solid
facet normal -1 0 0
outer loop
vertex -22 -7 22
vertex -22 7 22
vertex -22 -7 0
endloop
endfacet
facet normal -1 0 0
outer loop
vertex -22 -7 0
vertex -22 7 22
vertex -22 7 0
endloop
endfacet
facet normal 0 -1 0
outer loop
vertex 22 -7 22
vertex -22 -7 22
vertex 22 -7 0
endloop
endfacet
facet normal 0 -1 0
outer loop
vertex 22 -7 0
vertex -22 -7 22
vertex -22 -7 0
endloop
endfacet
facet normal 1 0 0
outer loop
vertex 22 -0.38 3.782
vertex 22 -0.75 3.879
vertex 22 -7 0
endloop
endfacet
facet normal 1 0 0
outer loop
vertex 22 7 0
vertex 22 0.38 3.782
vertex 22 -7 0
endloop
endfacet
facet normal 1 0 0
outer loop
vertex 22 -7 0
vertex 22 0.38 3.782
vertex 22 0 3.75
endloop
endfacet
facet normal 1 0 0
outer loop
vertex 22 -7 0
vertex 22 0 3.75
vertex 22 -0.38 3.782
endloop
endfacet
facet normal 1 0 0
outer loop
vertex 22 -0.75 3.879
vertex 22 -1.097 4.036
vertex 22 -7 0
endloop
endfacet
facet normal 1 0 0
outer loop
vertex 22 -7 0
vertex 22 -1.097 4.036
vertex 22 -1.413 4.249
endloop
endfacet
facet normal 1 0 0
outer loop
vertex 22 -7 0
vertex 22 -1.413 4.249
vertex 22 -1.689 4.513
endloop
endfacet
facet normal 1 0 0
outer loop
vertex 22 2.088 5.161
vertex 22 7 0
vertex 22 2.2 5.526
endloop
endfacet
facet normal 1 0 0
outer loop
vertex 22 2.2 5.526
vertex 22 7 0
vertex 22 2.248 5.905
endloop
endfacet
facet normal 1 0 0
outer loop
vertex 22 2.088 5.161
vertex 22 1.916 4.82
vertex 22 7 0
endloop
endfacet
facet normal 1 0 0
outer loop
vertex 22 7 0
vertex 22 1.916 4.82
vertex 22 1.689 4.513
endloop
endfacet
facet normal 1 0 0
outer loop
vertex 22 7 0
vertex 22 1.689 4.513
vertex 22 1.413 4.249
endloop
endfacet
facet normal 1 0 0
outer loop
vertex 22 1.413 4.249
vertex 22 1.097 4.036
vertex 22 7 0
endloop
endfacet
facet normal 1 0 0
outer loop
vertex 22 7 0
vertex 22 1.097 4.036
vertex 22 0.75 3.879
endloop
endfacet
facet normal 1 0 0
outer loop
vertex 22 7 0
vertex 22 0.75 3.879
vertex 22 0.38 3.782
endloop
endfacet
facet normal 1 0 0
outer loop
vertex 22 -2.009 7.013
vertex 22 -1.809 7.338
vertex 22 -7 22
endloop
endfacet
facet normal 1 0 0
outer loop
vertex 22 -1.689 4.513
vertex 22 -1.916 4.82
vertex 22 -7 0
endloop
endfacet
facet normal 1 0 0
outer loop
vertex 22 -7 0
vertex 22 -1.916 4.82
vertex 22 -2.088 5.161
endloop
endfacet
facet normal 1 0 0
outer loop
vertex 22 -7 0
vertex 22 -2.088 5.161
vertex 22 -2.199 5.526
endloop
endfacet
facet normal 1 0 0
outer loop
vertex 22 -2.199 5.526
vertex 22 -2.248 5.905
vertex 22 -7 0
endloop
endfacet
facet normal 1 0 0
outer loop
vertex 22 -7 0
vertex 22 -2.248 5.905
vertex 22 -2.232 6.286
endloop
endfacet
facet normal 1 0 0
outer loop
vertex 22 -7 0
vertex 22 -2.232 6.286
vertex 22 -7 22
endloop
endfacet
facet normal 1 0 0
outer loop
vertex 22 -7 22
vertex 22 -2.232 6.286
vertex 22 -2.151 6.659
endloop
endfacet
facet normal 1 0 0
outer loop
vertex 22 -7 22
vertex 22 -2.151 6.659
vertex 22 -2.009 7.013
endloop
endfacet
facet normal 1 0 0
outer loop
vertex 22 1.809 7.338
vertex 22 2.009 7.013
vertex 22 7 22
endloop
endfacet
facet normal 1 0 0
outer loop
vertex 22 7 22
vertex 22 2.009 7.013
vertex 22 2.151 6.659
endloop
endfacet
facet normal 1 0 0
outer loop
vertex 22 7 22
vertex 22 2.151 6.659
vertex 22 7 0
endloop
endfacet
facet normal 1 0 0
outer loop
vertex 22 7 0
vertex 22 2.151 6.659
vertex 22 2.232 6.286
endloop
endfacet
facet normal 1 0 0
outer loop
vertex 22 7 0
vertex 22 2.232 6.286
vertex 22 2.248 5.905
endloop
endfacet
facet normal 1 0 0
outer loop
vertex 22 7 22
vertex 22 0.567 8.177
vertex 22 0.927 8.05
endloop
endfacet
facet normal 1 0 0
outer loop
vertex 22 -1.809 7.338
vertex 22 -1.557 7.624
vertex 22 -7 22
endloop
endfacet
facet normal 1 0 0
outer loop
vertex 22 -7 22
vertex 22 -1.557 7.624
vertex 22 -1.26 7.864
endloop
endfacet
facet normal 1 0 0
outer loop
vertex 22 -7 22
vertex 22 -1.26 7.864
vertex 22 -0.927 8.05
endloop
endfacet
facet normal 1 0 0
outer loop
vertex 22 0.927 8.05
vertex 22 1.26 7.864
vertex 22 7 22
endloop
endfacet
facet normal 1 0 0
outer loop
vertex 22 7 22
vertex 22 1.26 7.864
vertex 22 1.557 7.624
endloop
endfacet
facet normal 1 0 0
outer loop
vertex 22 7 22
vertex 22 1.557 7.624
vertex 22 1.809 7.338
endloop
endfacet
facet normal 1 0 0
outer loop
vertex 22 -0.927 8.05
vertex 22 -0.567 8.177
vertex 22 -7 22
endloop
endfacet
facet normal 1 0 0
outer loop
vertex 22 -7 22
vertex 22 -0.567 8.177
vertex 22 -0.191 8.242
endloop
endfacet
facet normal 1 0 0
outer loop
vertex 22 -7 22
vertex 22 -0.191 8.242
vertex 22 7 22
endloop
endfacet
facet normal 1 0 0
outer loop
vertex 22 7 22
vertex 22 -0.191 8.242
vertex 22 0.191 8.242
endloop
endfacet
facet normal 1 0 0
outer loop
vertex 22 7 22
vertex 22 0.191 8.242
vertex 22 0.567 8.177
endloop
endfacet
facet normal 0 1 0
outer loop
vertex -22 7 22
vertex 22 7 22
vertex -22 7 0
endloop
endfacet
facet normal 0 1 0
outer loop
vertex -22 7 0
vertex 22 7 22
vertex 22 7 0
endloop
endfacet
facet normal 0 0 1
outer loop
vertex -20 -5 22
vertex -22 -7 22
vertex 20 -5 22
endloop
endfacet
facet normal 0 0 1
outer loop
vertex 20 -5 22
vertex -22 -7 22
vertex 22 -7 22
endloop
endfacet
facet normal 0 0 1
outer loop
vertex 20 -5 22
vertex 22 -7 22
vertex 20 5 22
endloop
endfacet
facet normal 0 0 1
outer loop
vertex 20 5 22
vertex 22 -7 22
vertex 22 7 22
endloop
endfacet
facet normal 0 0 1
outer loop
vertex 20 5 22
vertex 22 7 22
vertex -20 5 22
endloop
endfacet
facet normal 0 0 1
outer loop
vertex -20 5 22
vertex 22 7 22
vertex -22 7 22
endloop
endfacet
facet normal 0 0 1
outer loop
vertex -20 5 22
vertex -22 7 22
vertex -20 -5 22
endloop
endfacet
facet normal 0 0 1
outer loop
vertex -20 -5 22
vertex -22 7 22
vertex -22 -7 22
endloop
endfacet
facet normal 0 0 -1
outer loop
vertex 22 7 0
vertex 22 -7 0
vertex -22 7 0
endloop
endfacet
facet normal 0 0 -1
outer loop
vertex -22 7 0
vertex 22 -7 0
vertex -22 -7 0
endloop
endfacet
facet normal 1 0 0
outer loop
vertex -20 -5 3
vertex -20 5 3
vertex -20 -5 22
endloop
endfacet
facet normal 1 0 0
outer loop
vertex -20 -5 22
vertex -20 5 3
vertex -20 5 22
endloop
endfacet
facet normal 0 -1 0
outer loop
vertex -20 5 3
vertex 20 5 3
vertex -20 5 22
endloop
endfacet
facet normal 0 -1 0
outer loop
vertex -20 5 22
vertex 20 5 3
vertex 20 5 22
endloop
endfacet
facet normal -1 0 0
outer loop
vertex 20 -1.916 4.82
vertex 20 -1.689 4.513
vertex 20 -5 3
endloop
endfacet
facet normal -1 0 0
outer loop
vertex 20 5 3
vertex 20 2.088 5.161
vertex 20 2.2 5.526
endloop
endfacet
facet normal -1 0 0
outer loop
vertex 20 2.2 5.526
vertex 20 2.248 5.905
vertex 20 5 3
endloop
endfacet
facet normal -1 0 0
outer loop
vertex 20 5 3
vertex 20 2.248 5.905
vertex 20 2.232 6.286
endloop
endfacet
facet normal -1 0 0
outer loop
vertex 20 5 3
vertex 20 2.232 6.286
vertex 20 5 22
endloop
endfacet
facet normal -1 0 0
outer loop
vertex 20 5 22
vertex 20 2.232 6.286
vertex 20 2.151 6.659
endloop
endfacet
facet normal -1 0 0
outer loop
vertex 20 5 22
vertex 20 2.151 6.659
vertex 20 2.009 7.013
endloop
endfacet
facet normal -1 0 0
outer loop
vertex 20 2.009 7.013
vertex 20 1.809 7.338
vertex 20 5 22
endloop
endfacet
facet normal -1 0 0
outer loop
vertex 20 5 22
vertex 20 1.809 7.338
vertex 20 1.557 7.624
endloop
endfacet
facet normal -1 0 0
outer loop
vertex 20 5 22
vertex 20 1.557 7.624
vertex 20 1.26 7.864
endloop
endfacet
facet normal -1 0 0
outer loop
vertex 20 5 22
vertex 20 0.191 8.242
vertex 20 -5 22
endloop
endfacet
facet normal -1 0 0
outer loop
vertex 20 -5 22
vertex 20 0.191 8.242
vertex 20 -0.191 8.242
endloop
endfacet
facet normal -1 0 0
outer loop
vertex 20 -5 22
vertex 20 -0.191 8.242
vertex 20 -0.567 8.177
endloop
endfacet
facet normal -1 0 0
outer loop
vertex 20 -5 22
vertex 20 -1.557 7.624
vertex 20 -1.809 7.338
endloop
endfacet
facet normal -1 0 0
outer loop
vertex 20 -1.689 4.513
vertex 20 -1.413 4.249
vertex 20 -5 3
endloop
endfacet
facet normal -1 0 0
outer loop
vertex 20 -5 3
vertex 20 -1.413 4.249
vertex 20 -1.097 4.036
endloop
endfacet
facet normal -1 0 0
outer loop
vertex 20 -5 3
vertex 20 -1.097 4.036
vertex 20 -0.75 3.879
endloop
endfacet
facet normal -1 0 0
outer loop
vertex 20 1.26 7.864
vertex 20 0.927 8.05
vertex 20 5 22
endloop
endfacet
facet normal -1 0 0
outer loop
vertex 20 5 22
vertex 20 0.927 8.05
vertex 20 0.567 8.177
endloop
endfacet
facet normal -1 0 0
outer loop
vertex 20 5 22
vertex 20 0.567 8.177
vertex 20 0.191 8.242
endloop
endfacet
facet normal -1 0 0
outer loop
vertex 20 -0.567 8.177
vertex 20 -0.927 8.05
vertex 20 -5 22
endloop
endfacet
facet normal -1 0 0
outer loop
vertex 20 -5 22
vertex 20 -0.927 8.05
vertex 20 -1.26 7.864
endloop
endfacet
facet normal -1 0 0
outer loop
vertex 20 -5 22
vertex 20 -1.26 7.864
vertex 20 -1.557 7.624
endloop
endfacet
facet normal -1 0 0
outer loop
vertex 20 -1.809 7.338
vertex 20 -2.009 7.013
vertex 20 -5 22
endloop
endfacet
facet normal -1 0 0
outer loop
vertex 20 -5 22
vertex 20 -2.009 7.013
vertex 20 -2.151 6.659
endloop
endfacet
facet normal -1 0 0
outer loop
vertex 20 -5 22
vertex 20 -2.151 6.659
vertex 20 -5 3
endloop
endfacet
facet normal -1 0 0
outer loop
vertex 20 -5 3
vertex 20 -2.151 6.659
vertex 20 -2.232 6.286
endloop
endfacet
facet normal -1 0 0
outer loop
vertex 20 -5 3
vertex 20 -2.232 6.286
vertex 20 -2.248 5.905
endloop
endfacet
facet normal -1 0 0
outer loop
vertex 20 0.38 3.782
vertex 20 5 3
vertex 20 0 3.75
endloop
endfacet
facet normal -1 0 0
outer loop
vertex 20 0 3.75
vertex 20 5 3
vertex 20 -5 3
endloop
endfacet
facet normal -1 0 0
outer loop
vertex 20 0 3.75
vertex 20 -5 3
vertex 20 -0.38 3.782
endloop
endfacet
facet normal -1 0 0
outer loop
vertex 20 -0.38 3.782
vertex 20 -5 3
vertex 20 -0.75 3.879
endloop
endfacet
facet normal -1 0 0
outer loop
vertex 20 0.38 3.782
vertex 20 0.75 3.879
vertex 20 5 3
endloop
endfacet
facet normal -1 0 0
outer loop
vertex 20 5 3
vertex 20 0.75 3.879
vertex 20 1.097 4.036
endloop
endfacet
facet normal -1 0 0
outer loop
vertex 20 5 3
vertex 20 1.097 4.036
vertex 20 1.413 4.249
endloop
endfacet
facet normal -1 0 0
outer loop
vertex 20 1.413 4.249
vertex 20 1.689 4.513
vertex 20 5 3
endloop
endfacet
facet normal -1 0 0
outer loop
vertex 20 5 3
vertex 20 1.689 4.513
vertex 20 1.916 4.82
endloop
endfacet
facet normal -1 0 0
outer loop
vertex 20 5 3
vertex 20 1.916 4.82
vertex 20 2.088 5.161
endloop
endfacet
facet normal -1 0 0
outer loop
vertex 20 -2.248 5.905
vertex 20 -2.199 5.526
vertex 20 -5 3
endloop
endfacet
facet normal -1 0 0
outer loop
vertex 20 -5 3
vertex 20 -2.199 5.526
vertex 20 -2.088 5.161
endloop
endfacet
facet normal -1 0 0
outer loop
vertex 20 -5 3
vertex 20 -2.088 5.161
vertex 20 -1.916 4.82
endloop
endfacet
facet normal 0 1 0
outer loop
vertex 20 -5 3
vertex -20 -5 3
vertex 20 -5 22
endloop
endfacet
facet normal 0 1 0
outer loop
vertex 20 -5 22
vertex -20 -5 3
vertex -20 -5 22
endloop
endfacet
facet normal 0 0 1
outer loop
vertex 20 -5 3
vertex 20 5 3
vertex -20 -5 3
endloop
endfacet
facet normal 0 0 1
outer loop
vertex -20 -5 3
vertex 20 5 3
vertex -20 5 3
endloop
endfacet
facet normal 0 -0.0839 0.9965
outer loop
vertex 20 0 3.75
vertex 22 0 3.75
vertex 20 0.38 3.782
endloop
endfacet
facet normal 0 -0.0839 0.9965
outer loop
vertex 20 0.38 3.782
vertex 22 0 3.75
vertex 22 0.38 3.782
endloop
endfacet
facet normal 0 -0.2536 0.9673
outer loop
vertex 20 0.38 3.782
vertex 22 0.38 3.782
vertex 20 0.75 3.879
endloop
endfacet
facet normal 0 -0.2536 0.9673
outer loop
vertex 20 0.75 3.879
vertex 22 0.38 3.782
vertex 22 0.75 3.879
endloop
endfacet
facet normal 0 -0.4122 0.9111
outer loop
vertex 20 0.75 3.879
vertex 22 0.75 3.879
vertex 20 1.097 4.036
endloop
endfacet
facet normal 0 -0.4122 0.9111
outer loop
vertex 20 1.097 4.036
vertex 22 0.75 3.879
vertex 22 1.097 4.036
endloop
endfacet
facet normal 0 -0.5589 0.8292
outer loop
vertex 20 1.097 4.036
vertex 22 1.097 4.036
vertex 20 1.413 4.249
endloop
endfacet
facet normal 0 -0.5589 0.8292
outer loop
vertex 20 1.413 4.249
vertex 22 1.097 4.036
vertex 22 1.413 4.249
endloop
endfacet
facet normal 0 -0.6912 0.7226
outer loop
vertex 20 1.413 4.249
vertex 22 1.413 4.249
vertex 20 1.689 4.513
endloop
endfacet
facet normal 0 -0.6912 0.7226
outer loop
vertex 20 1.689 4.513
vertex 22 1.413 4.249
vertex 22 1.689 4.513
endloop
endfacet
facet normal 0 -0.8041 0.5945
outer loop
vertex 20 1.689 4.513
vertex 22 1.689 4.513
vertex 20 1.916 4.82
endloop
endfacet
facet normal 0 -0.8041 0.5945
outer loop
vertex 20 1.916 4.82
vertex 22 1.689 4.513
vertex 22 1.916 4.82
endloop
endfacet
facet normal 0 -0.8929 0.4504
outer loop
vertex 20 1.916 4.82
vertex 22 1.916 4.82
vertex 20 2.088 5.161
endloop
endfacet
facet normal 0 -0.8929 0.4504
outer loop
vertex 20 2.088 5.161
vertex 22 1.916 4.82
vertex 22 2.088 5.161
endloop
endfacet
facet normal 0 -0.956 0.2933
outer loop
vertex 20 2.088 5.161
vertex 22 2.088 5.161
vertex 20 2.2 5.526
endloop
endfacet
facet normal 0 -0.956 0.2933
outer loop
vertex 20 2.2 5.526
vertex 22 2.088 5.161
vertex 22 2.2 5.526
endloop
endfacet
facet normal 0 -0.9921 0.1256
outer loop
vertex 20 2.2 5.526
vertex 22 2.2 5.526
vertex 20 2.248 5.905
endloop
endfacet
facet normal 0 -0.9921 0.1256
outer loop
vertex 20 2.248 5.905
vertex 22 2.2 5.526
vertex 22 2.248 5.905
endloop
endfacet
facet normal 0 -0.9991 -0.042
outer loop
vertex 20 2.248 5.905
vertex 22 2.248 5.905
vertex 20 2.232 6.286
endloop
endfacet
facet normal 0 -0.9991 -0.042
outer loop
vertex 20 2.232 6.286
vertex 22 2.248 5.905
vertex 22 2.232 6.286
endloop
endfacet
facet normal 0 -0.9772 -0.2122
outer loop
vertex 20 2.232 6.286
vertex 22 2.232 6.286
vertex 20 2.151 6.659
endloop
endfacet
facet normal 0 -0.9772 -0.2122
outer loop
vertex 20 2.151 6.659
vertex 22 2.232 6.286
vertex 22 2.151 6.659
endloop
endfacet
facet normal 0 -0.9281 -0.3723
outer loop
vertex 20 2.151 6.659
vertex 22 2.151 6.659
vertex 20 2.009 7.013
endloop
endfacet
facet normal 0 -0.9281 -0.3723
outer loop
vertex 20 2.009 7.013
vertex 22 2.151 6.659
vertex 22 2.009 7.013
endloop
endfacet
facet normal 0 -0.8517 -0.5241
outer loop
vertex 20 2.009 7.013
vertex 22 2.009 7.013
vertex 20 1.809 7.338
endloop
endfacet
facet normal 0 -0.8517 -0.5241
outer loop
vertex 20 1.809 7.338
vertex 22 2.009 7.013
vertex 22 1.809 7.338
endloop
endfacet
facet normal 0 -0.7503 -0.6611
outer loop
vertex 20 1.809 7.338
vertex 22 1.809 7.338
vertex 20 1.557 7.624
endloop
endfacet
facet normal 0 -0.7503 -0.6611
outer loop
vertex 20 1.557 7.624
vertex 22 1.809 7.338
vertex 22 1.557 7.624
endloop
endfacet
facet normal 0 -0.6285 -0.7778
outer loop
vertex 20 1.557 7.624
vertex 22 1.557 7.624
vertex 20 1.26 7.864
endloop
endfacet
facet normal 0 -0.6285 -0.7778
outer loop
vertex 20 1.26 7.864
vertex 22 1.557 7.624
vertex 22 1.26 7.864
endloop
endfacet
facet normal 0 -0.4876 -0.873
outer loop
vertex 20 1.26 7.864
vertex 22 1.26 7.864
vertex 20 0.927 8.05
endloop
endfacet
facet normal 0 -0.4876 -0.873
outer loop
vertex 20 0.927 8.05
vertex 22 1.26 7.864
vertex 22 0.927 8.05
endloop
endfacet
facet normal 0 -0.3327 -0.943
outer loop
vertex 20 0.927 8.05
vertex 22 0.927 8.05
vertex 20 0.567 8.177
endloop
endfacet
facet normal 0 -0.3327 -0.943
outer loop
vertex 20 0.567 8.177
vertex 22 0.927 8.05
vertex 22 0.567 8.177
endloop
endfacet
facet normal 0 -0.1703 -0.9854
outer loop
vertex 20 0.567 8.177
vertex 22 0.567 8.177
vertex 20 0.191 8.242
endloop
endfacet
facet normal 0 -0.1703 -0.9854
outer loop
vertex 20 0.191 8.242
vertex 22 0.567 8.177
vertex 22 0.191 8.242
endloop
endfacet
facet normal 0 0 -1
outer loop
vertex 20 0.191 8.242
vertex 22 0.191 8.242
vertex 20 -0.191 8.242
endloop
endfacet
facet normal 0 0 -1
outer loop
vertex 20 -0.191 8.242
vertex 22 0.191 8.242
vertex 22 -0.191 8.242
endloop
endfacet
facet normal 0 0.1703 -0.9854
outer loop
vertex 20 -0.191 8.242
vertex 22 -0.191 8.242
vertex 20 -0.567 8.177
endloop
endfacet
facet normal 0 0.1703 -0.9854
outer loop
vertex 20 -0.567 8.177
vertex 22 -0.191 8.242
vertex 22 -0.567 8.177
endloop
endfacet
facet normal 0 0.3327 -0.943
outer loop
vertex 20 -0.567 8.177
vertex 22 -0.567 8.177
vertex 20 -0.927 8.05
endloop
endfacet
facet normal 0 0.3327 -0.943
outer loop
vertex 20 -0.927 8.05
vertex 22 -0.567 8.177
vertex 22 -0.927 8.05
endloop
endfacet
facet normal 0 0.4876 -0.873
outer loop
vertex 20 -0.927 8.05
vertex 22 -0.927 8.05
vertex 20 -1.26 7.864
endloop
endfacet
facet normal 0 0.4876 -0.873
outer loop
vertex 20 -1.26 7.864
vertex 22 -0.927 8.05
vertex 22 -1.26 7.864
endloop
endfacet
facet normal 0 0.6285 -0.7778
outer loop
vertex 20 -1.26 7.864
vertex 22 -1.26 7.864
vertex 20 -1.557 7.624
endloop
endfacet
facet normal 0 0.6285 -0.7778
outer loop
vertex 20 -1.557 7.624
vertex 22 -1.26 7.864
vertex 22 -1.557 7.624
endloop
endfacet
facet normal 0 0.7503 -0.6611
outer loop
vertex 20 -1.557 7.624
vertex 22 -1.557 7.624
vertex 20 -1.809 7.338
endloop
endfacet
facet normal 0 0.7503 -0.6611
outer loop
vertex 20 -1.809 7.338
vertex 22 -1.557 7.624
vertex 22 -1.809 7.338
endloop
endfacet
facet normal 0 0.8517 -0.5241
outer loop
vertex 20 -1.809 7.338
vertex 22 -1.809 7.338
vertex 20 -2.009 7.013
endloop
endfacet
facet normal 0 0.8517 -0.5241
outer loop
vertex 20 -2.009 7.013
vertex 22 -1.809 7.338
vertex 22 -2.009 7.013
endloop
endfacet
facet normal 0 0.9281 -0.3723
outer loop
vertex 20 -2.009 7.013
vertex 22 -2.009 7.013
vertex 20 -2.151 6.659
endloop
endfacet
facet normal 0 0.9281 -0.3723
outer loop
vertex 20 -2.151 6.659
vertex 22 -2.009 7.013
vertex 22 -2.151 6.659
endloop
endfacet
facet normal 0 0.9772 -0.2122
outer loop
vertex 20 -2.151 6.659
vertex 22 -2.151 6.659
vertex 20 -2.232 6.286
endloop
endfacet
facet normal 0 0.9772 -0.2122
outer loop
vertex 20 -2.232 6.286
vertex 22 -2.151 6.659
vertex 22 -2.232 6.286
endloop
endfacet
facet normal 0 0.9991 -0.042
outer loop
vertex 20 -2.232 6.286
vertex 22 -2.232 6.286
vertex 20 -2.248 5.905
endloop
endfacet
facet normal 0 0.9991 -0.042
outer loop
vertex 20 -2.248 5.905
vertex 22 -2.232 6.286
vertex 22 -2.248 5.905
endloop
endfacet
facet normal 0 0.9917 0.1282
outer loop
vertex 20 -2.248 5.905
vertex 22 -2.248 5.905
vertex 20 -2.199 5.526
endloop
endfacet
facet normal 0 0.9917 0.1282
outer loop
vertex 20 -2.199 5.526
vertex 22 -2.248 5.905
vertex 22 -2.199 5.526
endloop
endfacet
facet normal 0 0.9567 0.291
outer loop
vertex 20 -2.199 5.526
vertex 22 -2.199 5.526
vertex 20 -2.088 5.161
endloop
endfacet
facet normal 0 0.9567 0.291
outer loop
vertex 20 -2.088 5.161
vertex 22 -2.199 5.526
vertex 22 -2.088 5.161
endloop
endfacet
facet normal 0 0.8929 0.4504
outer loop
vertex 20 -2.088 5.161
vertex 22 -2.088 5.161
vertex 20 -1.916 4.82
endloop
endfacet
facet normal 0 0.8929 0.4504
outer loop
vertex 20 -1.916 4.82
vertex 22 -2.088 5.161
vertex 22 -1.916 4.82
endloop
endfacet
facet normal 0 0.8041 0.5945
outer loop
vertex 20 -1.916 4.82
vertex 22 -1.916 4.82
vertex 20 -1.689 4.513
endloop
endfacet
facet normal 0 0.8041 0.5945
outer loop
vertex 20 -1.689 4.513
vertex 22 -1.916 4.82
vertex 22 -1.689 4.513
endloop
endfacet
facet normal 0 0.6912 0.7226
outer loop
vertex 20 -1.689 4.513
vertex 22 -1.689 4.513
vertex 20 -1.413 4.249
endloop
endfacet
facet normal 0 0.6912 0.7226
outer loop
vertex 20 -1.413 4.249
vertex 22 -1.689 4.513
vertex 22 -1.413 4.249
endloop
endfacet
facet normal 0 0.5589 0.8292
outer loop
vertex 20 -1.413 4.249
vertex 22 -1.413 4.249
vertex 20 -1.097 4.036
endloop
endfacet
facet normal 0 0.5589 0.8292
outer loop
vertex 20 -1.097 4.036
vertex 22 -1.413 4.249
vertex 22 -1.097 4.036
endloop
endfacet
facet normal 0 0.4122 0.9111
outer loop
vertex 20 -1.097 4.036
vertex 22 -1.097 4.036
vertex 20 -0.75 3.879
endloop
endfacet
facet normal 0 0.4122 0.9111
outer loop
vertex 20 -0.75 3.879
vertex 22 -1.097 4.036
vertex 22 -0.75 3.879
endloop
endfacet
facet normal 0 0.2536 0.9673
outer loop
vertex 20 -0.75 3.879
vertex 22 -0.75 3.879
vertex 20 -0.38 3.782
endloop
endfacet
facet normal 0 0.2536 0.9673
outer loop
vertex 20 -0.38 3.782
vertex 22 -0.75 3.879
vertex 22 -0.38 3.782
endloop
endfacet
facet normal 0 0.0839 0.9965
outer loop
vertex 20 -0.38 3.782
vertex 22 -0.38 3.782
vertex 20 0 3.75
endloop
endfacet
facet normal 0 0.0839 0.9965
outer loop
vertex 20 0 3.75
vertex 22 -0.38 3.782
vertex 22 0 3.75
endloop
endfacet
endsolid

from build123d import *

# Parameters (mm, degrees)
ESBO_O1_W                = 44
ESBO_O1_H                = 14
RESSALTO_EXTRUS_O1_DEPTH = 22
ESBO_O2_W                = 40
ESBO_O2_H                = 10
CORTE_EXTRUS_O1_DEPTH    = 19
ESBO_O3_R                = 2.25
CORTE_EXTRUS_O2_DEPTH    = 5


with BuildPart() as part:
    # Esboço1 → Ressalto-extrusão1 (new body)
    with BuildSketch(Plane.XY):
        Rectangle(ESBO_O1_W, ESBO_O1_H)
    extrude(amount=RESSALTO_EXTRUS_O1_DEPTH)

    # Esboço2 → Corte-extrusão1 (cut)
    with BuildSketch(Plane.XY.offset(22)):
        Rectangle(ESBO_O2_W, ESBO_O2_H)
    extrude(amount=-CORTE_EXTRUS_O1_DEPTH, mode=Mode.SUBTRACT)

    # Esboço3 → Corte-extrusão2 (cut)
    with BuildSketch(Plane(origin=(22, 0, 0), x_dir=(0, 0, -1), z_dir=(1, 0, 0))):
        with Locations((-6, 0)):
            Circle(ESBO_O3_R)
    extrude(amount=-CORTE_EXTRUS_O2_DEPTH, mode=Mode.SUBTRACT)


solid = part.part
